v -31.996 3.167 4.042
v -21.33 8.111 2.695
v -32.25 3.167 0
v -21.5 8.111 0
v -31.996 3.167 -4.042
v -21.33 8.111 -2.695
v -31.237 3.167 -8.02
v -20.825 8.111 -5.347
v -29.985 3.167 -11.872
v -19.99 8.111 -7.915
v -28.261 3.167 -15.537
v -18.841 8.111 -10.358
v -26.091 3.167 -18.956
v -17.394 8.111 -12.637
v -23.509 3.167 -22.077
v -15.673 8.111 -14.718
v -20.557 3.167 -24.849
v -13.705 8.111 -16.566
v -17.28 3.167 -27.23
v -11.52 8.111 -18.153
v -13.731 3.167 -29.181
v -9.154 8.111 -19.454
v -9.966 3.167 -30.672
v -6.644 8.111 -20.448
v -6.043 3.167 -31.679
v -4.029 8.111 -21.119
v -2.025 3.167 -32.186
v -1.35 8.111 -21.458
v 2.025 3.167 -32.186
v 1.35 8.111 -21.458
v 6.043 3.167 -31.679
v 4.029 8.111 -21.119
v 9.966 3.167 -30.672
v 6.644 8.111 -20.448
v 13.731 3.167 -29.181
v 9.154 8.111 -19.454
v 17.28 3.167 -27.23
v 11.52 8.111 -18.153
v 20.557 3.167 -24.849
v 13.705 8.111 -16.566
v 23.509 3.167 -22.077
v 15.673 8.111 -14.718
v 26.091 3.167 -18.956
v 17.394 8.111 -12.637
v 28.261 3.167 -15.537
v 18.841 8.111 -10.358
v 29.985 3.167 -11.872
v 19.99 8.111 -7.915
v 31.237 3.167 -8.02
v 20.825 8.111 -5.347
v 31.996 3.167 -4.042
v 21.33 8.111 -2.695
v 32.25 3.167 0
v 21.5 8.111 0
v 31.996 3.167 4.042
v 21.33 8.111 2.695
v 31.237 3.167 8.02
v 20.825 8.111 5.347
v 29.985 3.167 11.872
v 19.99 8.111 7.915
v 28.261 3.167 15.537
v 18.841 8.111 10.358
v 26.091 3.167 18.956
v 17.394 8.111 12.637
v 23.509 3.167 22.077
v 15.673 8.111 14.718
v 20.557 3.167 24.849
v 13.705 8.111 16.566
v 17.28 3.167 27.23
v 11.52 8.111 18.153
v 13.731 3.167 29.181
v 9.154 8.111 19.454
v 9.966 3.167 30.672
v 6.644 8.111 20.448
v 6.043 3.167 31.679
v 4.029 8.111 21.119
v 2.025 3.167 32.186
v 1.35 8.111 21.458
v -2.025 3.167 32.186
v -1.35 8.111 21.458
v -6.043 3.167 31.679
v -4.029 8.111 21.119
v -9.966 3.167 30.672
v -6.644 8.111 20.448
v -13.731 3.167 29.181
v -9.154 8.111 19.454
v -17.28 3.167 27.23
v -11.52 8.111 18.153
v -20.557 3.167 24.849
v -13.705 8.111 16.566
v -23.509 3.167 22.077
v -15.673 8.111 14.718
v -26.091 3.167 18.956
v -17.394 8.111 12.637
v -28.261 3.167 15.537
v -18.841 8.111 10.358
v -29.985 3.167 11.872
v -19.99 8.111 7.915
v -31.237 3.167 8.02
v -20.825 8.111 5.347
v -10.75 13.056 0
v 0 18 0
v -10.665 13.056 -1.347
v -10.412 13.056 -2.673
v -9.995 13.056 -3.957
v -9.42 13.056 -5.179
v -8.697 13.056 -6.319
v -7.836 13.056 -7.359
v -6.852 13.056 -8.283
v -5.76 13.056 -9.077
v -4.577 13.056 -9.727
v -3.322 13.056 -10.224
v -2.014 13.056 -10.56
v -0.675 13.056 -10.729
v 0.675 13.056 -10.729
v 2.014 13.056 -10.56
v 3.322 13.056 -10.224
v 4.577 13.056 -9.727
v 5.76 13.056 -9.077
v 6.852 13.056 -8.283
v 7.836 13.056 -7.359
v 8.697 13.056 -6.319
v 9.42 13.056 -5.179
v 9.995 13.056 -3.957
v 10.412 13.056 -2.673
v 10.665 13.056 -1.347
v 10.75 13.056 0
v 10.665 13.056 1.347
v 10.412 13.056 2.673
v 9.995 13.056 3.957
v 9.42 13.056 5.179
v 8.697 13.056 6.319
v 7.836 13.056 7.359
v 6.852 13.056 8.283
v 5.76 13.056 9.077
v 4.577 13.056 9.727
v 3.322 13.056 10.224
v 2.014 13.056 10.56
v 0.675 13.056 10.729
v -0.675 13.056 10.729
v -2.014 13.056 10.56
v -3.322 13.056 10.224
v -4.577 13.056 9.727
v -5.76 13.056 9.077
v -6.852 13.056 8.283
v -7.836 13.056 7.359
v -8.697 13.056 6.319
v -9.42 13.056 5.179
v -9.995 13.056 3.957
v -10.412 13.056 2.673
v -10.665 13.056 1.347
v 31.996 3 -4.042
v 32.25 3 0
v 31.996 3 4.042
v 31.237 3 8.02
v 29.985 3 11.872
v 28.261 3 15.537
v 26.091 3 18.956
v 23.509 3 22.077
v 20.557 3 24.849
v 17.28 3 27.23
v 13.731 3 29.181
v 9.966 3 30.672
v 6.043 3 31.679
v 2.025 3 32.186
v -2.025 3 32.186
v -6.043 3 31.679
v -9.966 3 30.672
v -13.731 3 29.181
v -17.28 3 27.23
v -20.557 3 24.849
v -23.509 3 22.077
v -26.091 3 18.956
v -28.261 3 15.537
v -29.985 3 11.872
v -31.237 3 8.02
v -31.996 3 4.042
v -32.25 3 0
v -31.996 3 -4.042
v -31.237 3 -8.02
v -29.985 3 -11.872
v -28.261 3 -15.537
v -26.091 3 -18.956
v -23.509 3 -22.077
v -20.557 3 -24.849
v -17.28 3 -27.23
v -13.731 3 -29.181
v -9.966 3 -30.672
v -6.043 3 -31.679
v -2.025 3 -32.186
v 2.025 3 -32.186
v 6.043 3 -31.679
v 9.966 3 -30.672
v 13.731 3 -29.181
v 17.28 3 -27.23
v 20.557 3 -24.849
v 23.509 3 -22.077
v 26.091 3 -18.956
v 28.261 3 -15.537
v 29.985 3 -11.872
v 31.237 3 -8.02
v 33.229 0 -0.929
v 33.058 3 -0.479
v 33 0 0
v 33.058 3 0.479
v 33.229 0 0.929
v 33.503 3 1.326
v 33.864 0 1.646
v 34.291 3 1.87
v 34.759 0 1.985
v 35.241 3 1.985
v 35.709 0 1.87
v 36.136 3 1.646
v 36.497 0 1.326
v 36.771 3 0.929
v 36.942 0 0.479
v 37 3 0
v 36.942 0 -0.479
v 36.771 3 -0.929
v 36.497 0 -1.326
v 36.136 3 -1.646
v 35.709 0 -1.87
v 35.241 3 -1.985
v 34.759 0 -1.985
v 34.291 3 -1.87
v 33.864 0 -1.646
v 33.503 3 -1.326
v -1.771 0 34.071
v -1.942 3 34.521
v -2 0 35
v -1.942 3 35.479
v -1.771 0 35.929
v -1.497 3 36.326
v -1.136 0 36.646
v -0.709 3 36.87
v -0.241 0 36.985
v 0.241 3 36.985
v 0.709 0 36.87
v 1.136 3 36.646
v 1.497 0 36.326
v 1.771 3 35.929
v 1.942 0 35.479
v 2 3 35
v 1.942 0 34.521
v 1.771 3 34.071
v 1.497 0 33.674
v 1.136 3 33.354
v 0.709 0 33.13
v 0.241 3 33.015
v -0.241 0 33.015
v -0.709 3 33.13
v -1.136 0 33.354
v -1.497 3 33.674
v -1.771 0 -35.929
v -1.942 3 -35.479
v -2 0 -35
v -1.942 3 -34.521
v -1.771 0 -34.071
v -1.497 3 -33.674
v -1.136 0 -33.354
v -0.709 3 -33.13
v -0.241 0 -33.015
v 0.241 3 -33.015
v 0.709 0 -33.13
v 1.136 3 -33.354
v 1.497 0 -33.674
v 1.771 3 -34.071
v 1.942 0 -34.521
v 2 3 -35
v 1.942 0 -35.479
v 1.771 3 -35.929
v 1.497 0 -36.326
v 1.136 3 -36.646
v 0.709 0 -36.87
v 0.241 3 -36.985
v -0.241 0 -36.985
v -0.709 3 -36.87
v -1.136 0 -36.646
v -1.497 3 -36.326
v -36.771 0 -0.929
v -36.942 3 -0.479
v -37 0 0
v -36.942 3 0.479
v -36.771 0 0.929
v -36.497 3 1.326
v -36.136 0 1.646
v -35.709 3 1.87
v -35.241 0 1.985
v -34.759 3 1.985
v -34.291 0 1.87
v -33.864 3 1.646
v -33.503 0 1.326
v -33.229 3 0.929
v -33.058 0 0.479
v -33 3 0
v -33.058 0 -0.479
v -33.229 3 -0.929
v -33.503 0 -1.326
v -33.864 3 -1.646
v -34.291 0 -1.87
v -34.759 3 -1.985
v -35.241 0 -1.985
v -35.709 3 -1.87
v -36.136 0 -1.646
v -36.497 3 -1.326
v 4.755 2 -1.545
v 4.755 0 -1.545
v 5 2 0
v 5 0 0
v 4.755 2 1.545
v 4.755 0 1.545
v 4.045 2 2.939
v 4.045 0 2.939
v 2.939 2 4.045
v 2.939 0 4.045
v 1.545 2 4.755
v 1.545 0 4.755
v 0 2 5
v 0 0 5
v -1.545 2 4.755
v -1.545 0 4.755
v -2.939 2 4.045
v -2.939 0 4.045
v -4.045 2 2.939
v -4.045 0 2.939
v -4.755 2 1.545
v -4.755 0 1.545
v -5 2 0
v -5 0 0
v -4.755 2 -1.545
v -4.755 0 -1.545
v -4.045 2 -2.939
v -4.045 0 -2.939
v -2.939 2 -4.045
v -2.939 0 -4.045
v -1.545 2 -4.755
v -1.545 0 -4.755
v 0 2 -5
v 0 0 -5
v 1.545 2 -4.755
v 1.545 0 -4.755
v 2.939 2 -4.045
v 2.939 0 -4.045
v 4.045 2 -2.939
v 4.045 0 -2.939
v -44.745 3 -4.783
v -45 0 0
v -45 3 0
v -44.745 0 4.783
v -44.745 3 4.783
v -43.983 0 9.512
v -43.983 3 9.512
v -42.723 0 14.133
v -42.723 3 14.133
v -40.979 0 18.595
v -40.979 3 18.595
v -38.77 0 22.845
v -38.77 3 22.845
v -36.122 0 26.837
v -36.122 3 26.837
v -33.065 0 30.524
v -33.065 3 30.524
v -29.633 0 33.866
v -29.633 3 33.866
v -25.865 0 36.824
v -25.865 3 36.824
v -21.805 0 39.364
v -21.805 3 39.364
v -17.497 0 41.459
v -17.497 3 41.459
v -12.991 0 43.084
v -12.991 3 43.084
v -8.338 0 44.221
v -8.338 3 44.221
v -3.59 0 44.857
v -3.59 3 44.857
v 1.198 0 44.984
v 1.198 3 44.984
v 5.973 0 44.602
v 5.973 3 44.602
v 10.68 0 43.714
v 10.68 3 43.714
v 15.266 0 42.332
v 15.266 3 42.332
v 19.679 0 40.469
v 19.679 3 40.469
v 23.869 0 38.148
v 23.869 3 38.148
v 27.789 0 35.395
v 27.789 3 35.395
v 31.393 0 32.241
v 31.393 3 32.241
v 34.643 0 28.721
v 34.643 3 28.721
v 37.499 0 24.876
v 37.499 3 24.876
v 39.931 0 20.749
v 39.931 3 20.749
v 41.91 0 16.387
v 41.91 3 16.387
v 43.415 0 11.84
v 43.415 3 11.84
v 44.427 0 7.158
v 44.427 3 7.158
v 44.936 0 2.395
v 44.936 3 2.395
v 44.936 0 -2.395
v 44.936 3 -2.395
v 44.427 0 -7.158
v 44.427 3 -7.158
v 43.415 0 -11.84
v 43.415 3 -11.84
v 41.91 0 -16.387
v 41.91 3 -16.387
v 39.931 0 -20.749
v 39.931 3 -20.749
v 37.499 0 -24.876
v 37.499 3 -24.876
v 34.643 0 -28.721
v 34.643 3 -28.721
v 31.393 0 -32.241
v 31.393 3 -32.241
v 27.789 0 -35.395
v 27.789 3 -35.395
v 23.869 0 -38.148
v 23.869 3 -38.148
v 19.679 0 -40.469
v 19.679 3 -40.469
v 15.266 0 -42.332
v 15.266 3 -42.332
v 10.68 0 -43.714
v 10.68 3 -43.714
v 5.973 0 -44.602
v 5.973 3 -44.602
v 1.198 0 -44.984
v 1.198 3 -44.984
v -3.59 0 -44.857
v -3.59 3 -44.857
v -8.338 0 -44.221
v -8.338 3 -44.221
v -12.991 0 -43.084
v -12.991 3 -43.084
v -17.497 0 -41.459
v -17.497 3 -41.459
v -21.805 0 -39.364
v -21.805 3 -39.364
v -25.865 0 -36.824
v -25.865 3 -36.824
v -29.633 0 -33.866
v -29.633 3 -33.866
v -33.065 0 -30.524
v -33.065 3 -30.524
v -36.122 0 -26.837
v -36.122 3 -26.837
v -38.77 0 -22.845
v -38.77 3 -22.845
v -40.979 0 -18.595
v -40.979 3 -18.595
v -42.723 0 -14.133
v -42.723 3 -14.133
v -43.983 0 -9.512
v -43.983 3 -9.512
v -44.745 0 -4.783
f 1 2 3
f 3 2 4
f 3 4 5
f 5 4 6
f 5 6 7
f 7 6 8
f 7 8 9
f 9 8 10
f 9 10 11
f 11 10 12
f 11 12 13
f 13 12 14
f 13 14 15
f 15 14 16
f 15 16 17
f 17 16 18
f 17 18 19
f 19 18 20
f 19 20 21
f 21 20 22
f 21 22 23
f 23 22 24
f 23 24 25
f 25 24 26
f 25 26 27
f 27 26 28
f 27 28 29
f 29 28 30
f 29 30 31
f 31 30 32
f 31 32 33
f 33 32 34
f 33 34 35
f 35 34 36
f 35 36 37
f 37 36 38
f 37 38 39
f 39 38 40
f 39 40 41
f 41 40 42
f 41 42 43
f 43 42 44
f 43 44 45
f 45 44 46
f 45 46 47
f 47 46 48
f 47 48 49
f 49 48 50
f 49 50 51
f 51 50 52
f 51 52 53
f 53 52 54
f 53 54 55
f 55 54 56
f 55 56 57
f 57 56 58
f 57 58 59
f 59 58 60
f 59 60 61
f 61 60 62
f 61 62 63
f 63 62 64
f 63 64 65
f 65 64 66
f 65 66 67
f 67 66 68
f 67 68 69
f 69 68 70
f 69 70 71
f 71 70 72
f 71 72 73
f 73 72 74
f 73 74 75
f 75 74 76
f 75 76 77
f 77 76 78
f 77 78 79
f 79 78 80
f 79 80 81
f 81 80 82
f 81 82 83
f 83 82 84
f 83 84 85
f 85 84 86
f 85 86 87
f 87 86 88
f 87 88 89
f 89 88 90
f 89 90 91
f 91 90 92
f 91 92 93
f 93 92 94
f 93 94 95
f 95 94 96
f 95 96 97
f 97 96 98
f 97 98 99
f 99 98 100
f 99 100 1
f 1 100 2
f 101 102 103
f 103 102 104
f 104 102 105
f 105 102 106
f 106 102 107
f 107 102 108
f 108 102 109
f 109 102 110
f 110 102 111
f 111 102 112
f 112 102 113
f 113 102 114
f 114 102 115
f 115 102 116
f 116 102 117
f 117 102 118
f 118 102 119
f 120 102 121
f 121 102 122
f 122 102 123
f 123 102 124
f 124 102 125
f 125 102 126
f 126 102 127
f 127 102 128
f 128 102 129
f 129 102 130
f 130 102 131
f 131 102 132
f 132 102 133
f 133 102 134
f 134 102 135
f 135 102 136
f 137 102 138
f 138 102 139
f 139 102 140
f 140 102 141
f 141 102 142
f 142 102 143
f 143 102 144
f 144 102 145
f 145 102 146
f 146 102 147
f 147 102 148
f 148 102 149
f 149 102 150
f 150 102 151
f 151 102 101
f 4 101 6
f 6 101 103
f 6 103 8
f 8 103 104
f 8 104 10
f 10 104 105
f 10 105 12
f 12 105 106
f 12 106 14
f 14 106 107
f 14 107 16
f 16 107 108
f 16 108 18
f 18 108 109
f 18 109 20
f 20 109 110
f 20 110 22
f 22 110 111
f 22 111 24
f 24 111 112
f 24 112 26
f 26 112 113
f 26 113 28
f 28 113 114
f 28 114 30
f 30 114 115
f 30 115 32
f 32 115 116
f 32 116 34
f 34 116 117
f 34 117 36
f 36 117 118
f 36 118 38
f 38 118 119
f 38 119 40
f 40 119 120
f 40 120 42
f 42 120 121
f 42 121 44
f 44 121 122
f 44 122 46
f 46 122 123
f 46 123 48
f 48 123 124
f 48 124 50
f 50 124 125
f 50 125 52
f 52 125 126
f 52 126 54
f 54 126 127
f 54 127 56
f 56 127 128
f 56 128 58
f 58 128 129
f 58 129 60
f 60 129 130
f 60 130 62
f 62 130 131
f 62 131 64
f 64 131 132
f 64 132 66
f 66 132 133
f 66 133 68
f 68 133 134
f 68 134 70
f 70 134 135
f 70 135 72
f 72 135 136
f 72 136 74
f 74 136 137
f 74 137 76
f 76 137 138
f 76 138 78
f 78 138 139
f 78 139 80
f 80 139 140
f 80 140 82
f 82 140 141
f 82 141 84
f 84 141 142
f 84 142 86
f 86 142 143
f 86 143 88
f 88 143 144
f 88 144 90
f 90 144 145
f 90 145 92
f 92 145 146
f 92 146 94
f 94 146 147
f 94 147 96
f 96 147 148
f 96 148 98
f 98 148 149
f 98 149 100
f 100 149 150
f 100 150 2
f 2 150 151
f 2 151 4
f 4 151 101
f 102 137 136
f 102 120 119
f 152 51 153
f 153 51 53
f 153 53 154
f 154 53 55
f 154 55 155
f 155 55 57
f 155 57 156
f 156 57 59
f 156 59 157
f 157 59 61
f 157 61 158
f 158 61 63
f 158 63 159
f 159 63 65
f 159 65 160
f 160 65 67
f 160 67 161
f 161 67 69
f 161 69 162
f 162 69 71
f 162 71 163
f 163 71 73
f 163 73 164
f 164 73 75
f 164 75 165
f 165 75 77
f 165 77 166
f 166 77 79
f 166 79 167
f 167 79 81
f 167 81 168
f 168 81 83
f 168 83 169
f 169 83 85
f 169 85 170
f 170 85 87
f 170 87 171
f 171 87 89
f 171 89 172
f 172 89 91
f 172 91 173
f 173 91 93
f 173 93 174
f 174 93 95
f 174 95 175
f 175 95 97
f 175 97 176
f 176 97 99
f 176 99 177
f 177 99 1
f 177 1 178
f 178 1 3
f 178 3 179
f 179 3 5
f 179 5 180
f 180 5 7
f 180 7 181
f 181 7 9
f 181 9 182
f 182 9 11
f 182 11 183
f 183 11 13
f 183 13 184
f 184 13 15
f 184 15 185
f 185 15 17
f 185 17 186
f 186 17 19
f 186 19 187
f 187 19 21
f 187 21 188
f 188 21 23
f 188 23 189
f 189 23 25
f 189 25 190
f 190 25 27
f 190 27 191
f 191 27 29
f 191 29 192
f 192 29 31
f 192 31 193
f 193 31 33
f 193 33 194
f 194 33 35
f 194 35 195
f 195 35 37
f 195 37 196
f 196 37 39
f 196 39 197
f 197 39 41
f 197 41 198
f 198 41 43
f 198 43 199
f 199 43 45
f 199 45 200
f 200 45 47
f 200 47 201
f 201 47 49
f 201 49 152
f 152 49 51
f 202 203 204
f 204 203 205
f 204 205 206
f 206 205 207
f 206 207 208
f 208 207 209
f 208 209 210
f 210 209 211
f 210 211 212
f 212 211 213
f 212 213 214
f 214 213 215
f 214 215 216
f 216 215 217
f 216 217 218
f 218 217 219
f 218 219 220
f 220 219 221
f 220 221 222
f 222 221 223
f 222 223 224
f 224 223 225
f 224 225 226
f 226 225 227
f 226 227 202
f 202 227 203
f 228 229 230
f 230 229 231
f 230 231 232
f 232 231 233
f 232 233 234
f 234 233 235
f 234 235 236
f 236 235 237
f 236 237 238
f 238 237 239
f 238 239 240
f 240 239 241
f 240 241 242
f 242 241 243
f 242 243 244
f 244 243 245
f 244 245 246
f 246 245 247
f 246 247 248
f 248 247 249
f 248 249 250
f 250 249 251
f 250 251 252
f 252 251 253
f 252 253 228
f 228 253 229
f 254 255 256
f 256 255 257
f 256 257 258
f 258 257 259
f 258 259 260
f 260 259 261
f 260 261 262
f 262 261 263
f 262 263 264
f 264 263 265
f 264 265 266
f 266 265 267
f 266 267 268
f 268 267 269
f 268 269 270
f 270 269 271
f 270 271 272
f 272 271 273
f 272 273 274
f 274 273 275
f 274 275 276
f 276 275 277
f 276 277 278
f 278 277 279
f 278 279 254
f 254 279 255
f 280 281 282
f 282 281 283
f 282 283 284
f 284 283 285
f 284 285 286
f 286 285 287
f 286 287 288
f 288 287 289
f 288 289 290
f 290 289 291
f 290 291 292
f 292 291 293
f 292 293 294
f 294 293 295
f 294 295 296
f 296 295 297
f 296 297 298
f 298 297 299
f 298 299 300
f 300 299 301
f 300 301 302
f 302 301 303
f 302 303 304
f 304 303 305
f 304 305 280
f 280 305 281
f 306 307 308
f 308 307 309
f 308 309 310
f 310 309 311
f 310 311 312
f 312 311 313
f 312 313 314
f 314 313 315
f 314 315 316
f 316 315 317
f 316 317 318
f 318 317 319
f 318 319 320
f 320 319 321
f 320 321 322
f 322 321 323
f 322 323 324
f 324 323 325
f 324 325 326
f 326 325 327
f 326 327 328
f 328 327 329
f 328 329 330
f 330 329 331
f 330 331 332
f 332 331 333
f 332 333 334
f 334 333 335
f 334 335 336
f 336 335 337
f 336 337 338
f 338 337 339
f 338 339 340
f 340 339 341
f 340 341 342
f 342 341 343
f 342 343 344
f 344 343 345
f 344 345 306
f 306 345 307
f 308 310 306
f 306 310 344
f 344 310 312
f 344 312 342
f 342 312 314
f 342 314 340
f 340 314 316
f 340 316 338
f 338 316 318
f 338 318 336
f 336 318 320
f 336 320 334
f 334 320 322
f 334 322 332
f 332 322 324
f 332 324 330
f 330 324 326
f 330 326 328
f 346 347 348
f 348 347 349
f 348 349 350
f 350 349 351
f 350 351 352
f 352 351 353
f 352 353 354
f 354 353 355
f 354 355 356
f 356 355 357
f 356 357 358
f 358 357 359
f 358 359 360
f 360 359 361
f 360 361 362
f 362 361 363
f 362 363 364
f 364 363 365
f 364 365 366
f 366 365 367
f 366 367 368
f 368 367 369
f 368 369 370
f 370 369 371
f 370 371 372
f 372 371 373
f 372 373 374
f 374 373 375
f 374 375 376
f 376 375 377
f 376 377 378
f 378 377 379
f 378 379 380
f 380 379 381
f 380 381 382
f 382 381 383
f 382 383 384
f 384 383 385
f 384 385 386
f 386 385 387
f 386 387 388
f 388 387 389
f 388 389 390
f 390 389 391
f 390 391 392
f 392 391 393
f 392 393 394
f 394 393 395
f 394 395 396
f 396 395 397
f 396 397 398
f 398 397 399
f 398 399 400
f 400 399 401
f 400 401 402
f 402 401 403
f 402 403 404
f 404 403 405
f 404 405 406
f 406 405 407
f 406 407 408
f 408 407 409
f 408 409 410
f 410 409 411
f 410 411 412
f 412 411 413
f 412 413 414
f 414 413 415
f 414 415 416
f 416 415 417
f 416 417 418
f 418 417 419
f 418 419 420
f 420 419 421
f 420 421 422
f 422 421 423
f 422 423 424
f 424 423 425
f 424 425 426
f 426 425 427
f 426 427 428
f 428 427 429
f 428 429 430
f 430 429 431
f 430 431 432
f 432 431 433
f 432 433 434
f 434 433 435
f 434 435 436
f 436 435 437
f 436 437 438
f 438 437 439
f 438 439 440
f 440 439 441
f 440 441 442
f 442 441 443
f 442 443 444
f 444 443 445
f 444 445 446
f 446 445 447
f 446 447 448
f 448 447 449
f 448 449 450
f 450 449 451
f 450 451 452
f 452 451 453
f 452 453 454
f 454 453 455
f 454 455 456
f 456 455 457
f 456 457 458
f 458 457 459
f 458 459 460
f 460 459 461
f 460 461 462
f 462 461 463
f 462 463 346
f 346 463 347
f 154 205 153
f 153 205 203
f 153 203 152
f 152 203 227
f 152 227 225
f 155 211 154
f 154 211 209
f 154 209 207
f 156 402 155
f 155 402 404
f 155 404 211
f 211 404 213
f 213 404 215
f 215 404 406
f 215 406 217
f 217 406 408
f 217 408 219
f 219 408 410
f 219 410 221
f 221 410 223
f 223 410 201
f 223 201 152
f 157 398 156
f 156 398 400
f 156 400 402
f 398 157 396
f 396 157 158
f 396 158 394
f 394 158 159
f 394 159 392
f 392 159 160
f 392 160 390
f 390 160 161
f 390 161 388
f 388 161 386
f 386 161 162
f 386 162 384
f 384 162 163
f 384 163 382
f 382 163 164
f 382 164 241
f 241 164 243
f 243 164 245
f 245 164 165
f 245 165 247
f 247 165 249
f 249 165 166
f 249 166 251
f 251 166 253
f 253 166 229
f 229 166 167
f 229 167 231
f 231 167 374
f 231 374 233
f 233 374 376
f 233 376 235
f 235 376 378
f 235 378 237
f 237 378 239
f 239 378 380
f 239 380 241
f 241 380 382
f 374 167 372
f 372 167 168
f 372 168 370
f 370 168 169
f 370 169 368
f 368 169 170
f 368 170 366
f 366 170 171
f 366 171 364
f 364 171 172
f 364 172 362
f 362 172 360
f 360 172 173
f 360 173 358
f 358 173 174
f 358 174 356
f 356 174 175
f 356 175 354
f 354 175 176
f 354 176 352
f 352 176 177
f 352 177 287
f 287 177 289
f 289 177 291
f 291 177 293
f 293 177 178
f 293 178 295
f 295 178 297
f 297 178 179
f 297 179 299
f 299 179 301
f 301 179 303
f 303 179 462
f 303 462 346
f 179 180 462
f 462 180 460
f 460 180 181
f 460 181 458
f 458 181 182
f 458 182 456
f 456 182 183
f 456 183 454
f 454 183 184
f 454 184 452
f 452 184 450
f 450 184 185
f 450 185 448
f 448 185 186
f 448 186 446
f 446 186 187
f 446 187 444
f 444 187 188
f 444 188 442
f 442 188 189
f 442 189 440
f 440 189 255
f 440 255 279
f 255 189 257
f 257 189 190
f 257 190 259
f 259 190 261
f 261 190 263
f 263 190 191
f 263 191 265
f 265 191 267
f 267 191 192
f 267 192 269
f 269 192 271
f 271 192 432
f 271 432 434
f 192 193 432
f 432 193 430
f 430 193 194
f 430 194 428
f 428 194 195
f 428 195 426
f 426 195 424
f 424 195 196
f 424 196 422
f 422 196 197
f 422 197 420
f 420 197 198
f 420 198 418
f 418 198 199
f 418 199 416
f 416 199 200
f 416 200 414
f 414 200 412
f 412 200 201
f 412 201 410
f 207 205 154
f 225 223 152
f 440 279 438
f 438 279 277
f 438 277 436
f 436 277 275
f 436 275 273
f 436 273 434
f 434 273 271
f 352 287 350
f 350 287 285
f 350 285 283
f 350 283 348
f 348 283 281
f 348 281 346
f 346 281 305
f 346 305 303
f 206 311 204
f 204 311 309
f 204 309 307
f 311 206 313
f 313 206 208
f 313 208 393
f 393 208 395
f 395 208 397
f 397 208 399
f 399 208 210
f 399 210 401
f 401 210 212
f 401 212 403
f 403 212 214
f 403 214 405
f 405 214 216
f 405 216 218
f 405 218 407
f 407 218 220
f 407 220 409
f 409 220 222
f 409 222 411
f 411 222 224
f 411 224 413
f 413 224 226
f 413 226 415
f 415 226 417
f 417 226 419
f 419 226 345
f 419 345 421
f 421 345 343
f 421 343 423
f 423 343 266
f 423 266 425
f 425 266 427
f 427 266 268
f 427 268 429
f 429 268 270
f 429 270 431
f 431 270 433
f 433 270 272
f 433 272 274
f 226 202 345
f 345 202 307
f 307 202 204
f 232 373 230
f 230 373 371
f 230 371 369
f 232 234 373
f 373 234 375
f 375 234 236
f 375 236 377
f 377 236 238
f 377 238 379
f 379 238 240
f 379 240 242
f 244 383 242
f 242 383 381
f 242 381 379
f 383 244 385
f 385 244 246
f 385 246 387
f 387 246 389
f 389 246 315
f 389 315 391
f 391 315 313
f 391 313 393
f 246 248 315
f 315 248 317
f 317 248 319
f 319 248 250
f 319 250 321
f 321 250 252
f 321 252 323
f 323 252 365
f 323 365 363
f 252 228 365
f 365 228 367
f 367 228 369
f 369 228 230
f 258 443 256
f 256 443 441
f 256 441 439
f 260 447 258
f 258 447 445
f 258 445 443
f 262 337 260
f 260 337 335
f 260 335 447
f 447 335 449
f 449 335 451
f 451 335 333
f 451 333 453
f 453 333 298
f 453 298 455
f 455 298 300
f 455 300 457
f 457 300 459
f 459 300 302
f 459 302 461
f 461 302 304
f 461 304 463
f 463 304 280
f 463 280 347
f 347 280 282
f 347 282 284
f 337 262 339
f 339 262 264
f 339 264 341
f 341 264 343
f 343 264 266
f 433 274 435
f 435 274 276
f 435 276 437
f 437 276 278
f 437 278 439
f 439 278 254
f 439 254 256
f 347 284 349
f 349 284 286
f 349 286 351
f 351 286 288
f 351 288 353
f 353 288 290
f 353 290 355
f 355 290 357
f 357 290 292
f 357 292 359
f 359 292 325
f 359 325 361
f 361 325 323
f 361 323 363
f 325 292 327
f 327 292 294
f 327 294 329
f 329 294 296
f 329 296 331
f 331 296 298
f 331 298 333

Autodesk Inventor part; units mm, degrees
ref_plane "YZ Plane" through (0, 0, 0) normal (1, 0, 0) x (0, 1, 0)
ref_plane "XZ Plane" through (0, 0, 0) normal (0, 1, 0) x (-1, 0, 0)
ref_plane "XY Plane" through (0, 0, 0) normal (0, 0, 1) x (1, 0, 0)
sketch "Szkic1" plane through (0, 0, 0) normal (0, 1, 0) x (-1, 0, 0)
  circle A0 centre (0, 0) radius 45
  circle A1 centre (35, 0) radius 1.5
  circle A2 centre (-35, 0) radius 1.5
  circle A3 centre (0, 35) radius 1.5
  circle A4 centre (0, -35) radius 1.5
  dimension "d0" = 90
  dimension "d30" = 3
  dimension "d31" = 3
  dimension "d32" = 3
  dimension "d33" = 3
extrude "Wyciągnięcie proste1" add sketch "Szkic1" along normal blind 3 contours A0 | A1 | A2 | A3 | A4
sketch "Szkic4" plane through (0, 0, 0) normal (0, -1, 0) x (1, 0, 0)
  circle A0 centre (0, 0) radius 2.5 projected
  circle A1 centre (0, 0) radius 5
  dimension "d19" = 10
extrude "Wyciągnięcie proste5" cut sketch "Szkic4" against normal blind 2 contours A0 | A1
sketch "Szkic8" plane through (0, 2, 0) normal (0, -1, 0) x (1, 0, 0)
  point P0 (0, 0)
sketch "Szkic17" plane through (0, 3, 0) normal (0, 1, 0) x (1, 0, 0)
  circle A0 centre (-35, 0) radius 2
  circle A1 centre (0, 35) radius 2
  circle A2 centre (0, -35) radius 2
  circle A3 centre (35, 0) radius 2
  point P0 (0, 0)
  dimension "d34" = 4
  dimension "d35" = 4
  dimension "d36" = 4
  dimension "d37" = 4
extrude "Wyciągnięcie proste9" cut sketch "Szkic17" against normal blind 47
sketch "Szkic19" plane through (0, 3, 0) normal (0, 1, 0) x (1, 0, 0)
  point P0 (0, 0)
sketch "Szkic20" plane through (0, 3, 0) normal (0, 1, 0) x (1, 0, 0)
  circle A0 centre (0, 0) radius 5 projected
  circle A1 centre (0, 0) radius 32.25
  dimension "d47" = 64.5
extrude "Wyciągnięcie proste11" add sketch "Szkic20" along normal blind 15 contours A0 | A1
chamfer "Faza1" distance 32.25 angle 24.7 1 edges at (-32.25, 18, 0) measured on face at (15.449, 18, -8.9531)
properties part number "tarcza"
